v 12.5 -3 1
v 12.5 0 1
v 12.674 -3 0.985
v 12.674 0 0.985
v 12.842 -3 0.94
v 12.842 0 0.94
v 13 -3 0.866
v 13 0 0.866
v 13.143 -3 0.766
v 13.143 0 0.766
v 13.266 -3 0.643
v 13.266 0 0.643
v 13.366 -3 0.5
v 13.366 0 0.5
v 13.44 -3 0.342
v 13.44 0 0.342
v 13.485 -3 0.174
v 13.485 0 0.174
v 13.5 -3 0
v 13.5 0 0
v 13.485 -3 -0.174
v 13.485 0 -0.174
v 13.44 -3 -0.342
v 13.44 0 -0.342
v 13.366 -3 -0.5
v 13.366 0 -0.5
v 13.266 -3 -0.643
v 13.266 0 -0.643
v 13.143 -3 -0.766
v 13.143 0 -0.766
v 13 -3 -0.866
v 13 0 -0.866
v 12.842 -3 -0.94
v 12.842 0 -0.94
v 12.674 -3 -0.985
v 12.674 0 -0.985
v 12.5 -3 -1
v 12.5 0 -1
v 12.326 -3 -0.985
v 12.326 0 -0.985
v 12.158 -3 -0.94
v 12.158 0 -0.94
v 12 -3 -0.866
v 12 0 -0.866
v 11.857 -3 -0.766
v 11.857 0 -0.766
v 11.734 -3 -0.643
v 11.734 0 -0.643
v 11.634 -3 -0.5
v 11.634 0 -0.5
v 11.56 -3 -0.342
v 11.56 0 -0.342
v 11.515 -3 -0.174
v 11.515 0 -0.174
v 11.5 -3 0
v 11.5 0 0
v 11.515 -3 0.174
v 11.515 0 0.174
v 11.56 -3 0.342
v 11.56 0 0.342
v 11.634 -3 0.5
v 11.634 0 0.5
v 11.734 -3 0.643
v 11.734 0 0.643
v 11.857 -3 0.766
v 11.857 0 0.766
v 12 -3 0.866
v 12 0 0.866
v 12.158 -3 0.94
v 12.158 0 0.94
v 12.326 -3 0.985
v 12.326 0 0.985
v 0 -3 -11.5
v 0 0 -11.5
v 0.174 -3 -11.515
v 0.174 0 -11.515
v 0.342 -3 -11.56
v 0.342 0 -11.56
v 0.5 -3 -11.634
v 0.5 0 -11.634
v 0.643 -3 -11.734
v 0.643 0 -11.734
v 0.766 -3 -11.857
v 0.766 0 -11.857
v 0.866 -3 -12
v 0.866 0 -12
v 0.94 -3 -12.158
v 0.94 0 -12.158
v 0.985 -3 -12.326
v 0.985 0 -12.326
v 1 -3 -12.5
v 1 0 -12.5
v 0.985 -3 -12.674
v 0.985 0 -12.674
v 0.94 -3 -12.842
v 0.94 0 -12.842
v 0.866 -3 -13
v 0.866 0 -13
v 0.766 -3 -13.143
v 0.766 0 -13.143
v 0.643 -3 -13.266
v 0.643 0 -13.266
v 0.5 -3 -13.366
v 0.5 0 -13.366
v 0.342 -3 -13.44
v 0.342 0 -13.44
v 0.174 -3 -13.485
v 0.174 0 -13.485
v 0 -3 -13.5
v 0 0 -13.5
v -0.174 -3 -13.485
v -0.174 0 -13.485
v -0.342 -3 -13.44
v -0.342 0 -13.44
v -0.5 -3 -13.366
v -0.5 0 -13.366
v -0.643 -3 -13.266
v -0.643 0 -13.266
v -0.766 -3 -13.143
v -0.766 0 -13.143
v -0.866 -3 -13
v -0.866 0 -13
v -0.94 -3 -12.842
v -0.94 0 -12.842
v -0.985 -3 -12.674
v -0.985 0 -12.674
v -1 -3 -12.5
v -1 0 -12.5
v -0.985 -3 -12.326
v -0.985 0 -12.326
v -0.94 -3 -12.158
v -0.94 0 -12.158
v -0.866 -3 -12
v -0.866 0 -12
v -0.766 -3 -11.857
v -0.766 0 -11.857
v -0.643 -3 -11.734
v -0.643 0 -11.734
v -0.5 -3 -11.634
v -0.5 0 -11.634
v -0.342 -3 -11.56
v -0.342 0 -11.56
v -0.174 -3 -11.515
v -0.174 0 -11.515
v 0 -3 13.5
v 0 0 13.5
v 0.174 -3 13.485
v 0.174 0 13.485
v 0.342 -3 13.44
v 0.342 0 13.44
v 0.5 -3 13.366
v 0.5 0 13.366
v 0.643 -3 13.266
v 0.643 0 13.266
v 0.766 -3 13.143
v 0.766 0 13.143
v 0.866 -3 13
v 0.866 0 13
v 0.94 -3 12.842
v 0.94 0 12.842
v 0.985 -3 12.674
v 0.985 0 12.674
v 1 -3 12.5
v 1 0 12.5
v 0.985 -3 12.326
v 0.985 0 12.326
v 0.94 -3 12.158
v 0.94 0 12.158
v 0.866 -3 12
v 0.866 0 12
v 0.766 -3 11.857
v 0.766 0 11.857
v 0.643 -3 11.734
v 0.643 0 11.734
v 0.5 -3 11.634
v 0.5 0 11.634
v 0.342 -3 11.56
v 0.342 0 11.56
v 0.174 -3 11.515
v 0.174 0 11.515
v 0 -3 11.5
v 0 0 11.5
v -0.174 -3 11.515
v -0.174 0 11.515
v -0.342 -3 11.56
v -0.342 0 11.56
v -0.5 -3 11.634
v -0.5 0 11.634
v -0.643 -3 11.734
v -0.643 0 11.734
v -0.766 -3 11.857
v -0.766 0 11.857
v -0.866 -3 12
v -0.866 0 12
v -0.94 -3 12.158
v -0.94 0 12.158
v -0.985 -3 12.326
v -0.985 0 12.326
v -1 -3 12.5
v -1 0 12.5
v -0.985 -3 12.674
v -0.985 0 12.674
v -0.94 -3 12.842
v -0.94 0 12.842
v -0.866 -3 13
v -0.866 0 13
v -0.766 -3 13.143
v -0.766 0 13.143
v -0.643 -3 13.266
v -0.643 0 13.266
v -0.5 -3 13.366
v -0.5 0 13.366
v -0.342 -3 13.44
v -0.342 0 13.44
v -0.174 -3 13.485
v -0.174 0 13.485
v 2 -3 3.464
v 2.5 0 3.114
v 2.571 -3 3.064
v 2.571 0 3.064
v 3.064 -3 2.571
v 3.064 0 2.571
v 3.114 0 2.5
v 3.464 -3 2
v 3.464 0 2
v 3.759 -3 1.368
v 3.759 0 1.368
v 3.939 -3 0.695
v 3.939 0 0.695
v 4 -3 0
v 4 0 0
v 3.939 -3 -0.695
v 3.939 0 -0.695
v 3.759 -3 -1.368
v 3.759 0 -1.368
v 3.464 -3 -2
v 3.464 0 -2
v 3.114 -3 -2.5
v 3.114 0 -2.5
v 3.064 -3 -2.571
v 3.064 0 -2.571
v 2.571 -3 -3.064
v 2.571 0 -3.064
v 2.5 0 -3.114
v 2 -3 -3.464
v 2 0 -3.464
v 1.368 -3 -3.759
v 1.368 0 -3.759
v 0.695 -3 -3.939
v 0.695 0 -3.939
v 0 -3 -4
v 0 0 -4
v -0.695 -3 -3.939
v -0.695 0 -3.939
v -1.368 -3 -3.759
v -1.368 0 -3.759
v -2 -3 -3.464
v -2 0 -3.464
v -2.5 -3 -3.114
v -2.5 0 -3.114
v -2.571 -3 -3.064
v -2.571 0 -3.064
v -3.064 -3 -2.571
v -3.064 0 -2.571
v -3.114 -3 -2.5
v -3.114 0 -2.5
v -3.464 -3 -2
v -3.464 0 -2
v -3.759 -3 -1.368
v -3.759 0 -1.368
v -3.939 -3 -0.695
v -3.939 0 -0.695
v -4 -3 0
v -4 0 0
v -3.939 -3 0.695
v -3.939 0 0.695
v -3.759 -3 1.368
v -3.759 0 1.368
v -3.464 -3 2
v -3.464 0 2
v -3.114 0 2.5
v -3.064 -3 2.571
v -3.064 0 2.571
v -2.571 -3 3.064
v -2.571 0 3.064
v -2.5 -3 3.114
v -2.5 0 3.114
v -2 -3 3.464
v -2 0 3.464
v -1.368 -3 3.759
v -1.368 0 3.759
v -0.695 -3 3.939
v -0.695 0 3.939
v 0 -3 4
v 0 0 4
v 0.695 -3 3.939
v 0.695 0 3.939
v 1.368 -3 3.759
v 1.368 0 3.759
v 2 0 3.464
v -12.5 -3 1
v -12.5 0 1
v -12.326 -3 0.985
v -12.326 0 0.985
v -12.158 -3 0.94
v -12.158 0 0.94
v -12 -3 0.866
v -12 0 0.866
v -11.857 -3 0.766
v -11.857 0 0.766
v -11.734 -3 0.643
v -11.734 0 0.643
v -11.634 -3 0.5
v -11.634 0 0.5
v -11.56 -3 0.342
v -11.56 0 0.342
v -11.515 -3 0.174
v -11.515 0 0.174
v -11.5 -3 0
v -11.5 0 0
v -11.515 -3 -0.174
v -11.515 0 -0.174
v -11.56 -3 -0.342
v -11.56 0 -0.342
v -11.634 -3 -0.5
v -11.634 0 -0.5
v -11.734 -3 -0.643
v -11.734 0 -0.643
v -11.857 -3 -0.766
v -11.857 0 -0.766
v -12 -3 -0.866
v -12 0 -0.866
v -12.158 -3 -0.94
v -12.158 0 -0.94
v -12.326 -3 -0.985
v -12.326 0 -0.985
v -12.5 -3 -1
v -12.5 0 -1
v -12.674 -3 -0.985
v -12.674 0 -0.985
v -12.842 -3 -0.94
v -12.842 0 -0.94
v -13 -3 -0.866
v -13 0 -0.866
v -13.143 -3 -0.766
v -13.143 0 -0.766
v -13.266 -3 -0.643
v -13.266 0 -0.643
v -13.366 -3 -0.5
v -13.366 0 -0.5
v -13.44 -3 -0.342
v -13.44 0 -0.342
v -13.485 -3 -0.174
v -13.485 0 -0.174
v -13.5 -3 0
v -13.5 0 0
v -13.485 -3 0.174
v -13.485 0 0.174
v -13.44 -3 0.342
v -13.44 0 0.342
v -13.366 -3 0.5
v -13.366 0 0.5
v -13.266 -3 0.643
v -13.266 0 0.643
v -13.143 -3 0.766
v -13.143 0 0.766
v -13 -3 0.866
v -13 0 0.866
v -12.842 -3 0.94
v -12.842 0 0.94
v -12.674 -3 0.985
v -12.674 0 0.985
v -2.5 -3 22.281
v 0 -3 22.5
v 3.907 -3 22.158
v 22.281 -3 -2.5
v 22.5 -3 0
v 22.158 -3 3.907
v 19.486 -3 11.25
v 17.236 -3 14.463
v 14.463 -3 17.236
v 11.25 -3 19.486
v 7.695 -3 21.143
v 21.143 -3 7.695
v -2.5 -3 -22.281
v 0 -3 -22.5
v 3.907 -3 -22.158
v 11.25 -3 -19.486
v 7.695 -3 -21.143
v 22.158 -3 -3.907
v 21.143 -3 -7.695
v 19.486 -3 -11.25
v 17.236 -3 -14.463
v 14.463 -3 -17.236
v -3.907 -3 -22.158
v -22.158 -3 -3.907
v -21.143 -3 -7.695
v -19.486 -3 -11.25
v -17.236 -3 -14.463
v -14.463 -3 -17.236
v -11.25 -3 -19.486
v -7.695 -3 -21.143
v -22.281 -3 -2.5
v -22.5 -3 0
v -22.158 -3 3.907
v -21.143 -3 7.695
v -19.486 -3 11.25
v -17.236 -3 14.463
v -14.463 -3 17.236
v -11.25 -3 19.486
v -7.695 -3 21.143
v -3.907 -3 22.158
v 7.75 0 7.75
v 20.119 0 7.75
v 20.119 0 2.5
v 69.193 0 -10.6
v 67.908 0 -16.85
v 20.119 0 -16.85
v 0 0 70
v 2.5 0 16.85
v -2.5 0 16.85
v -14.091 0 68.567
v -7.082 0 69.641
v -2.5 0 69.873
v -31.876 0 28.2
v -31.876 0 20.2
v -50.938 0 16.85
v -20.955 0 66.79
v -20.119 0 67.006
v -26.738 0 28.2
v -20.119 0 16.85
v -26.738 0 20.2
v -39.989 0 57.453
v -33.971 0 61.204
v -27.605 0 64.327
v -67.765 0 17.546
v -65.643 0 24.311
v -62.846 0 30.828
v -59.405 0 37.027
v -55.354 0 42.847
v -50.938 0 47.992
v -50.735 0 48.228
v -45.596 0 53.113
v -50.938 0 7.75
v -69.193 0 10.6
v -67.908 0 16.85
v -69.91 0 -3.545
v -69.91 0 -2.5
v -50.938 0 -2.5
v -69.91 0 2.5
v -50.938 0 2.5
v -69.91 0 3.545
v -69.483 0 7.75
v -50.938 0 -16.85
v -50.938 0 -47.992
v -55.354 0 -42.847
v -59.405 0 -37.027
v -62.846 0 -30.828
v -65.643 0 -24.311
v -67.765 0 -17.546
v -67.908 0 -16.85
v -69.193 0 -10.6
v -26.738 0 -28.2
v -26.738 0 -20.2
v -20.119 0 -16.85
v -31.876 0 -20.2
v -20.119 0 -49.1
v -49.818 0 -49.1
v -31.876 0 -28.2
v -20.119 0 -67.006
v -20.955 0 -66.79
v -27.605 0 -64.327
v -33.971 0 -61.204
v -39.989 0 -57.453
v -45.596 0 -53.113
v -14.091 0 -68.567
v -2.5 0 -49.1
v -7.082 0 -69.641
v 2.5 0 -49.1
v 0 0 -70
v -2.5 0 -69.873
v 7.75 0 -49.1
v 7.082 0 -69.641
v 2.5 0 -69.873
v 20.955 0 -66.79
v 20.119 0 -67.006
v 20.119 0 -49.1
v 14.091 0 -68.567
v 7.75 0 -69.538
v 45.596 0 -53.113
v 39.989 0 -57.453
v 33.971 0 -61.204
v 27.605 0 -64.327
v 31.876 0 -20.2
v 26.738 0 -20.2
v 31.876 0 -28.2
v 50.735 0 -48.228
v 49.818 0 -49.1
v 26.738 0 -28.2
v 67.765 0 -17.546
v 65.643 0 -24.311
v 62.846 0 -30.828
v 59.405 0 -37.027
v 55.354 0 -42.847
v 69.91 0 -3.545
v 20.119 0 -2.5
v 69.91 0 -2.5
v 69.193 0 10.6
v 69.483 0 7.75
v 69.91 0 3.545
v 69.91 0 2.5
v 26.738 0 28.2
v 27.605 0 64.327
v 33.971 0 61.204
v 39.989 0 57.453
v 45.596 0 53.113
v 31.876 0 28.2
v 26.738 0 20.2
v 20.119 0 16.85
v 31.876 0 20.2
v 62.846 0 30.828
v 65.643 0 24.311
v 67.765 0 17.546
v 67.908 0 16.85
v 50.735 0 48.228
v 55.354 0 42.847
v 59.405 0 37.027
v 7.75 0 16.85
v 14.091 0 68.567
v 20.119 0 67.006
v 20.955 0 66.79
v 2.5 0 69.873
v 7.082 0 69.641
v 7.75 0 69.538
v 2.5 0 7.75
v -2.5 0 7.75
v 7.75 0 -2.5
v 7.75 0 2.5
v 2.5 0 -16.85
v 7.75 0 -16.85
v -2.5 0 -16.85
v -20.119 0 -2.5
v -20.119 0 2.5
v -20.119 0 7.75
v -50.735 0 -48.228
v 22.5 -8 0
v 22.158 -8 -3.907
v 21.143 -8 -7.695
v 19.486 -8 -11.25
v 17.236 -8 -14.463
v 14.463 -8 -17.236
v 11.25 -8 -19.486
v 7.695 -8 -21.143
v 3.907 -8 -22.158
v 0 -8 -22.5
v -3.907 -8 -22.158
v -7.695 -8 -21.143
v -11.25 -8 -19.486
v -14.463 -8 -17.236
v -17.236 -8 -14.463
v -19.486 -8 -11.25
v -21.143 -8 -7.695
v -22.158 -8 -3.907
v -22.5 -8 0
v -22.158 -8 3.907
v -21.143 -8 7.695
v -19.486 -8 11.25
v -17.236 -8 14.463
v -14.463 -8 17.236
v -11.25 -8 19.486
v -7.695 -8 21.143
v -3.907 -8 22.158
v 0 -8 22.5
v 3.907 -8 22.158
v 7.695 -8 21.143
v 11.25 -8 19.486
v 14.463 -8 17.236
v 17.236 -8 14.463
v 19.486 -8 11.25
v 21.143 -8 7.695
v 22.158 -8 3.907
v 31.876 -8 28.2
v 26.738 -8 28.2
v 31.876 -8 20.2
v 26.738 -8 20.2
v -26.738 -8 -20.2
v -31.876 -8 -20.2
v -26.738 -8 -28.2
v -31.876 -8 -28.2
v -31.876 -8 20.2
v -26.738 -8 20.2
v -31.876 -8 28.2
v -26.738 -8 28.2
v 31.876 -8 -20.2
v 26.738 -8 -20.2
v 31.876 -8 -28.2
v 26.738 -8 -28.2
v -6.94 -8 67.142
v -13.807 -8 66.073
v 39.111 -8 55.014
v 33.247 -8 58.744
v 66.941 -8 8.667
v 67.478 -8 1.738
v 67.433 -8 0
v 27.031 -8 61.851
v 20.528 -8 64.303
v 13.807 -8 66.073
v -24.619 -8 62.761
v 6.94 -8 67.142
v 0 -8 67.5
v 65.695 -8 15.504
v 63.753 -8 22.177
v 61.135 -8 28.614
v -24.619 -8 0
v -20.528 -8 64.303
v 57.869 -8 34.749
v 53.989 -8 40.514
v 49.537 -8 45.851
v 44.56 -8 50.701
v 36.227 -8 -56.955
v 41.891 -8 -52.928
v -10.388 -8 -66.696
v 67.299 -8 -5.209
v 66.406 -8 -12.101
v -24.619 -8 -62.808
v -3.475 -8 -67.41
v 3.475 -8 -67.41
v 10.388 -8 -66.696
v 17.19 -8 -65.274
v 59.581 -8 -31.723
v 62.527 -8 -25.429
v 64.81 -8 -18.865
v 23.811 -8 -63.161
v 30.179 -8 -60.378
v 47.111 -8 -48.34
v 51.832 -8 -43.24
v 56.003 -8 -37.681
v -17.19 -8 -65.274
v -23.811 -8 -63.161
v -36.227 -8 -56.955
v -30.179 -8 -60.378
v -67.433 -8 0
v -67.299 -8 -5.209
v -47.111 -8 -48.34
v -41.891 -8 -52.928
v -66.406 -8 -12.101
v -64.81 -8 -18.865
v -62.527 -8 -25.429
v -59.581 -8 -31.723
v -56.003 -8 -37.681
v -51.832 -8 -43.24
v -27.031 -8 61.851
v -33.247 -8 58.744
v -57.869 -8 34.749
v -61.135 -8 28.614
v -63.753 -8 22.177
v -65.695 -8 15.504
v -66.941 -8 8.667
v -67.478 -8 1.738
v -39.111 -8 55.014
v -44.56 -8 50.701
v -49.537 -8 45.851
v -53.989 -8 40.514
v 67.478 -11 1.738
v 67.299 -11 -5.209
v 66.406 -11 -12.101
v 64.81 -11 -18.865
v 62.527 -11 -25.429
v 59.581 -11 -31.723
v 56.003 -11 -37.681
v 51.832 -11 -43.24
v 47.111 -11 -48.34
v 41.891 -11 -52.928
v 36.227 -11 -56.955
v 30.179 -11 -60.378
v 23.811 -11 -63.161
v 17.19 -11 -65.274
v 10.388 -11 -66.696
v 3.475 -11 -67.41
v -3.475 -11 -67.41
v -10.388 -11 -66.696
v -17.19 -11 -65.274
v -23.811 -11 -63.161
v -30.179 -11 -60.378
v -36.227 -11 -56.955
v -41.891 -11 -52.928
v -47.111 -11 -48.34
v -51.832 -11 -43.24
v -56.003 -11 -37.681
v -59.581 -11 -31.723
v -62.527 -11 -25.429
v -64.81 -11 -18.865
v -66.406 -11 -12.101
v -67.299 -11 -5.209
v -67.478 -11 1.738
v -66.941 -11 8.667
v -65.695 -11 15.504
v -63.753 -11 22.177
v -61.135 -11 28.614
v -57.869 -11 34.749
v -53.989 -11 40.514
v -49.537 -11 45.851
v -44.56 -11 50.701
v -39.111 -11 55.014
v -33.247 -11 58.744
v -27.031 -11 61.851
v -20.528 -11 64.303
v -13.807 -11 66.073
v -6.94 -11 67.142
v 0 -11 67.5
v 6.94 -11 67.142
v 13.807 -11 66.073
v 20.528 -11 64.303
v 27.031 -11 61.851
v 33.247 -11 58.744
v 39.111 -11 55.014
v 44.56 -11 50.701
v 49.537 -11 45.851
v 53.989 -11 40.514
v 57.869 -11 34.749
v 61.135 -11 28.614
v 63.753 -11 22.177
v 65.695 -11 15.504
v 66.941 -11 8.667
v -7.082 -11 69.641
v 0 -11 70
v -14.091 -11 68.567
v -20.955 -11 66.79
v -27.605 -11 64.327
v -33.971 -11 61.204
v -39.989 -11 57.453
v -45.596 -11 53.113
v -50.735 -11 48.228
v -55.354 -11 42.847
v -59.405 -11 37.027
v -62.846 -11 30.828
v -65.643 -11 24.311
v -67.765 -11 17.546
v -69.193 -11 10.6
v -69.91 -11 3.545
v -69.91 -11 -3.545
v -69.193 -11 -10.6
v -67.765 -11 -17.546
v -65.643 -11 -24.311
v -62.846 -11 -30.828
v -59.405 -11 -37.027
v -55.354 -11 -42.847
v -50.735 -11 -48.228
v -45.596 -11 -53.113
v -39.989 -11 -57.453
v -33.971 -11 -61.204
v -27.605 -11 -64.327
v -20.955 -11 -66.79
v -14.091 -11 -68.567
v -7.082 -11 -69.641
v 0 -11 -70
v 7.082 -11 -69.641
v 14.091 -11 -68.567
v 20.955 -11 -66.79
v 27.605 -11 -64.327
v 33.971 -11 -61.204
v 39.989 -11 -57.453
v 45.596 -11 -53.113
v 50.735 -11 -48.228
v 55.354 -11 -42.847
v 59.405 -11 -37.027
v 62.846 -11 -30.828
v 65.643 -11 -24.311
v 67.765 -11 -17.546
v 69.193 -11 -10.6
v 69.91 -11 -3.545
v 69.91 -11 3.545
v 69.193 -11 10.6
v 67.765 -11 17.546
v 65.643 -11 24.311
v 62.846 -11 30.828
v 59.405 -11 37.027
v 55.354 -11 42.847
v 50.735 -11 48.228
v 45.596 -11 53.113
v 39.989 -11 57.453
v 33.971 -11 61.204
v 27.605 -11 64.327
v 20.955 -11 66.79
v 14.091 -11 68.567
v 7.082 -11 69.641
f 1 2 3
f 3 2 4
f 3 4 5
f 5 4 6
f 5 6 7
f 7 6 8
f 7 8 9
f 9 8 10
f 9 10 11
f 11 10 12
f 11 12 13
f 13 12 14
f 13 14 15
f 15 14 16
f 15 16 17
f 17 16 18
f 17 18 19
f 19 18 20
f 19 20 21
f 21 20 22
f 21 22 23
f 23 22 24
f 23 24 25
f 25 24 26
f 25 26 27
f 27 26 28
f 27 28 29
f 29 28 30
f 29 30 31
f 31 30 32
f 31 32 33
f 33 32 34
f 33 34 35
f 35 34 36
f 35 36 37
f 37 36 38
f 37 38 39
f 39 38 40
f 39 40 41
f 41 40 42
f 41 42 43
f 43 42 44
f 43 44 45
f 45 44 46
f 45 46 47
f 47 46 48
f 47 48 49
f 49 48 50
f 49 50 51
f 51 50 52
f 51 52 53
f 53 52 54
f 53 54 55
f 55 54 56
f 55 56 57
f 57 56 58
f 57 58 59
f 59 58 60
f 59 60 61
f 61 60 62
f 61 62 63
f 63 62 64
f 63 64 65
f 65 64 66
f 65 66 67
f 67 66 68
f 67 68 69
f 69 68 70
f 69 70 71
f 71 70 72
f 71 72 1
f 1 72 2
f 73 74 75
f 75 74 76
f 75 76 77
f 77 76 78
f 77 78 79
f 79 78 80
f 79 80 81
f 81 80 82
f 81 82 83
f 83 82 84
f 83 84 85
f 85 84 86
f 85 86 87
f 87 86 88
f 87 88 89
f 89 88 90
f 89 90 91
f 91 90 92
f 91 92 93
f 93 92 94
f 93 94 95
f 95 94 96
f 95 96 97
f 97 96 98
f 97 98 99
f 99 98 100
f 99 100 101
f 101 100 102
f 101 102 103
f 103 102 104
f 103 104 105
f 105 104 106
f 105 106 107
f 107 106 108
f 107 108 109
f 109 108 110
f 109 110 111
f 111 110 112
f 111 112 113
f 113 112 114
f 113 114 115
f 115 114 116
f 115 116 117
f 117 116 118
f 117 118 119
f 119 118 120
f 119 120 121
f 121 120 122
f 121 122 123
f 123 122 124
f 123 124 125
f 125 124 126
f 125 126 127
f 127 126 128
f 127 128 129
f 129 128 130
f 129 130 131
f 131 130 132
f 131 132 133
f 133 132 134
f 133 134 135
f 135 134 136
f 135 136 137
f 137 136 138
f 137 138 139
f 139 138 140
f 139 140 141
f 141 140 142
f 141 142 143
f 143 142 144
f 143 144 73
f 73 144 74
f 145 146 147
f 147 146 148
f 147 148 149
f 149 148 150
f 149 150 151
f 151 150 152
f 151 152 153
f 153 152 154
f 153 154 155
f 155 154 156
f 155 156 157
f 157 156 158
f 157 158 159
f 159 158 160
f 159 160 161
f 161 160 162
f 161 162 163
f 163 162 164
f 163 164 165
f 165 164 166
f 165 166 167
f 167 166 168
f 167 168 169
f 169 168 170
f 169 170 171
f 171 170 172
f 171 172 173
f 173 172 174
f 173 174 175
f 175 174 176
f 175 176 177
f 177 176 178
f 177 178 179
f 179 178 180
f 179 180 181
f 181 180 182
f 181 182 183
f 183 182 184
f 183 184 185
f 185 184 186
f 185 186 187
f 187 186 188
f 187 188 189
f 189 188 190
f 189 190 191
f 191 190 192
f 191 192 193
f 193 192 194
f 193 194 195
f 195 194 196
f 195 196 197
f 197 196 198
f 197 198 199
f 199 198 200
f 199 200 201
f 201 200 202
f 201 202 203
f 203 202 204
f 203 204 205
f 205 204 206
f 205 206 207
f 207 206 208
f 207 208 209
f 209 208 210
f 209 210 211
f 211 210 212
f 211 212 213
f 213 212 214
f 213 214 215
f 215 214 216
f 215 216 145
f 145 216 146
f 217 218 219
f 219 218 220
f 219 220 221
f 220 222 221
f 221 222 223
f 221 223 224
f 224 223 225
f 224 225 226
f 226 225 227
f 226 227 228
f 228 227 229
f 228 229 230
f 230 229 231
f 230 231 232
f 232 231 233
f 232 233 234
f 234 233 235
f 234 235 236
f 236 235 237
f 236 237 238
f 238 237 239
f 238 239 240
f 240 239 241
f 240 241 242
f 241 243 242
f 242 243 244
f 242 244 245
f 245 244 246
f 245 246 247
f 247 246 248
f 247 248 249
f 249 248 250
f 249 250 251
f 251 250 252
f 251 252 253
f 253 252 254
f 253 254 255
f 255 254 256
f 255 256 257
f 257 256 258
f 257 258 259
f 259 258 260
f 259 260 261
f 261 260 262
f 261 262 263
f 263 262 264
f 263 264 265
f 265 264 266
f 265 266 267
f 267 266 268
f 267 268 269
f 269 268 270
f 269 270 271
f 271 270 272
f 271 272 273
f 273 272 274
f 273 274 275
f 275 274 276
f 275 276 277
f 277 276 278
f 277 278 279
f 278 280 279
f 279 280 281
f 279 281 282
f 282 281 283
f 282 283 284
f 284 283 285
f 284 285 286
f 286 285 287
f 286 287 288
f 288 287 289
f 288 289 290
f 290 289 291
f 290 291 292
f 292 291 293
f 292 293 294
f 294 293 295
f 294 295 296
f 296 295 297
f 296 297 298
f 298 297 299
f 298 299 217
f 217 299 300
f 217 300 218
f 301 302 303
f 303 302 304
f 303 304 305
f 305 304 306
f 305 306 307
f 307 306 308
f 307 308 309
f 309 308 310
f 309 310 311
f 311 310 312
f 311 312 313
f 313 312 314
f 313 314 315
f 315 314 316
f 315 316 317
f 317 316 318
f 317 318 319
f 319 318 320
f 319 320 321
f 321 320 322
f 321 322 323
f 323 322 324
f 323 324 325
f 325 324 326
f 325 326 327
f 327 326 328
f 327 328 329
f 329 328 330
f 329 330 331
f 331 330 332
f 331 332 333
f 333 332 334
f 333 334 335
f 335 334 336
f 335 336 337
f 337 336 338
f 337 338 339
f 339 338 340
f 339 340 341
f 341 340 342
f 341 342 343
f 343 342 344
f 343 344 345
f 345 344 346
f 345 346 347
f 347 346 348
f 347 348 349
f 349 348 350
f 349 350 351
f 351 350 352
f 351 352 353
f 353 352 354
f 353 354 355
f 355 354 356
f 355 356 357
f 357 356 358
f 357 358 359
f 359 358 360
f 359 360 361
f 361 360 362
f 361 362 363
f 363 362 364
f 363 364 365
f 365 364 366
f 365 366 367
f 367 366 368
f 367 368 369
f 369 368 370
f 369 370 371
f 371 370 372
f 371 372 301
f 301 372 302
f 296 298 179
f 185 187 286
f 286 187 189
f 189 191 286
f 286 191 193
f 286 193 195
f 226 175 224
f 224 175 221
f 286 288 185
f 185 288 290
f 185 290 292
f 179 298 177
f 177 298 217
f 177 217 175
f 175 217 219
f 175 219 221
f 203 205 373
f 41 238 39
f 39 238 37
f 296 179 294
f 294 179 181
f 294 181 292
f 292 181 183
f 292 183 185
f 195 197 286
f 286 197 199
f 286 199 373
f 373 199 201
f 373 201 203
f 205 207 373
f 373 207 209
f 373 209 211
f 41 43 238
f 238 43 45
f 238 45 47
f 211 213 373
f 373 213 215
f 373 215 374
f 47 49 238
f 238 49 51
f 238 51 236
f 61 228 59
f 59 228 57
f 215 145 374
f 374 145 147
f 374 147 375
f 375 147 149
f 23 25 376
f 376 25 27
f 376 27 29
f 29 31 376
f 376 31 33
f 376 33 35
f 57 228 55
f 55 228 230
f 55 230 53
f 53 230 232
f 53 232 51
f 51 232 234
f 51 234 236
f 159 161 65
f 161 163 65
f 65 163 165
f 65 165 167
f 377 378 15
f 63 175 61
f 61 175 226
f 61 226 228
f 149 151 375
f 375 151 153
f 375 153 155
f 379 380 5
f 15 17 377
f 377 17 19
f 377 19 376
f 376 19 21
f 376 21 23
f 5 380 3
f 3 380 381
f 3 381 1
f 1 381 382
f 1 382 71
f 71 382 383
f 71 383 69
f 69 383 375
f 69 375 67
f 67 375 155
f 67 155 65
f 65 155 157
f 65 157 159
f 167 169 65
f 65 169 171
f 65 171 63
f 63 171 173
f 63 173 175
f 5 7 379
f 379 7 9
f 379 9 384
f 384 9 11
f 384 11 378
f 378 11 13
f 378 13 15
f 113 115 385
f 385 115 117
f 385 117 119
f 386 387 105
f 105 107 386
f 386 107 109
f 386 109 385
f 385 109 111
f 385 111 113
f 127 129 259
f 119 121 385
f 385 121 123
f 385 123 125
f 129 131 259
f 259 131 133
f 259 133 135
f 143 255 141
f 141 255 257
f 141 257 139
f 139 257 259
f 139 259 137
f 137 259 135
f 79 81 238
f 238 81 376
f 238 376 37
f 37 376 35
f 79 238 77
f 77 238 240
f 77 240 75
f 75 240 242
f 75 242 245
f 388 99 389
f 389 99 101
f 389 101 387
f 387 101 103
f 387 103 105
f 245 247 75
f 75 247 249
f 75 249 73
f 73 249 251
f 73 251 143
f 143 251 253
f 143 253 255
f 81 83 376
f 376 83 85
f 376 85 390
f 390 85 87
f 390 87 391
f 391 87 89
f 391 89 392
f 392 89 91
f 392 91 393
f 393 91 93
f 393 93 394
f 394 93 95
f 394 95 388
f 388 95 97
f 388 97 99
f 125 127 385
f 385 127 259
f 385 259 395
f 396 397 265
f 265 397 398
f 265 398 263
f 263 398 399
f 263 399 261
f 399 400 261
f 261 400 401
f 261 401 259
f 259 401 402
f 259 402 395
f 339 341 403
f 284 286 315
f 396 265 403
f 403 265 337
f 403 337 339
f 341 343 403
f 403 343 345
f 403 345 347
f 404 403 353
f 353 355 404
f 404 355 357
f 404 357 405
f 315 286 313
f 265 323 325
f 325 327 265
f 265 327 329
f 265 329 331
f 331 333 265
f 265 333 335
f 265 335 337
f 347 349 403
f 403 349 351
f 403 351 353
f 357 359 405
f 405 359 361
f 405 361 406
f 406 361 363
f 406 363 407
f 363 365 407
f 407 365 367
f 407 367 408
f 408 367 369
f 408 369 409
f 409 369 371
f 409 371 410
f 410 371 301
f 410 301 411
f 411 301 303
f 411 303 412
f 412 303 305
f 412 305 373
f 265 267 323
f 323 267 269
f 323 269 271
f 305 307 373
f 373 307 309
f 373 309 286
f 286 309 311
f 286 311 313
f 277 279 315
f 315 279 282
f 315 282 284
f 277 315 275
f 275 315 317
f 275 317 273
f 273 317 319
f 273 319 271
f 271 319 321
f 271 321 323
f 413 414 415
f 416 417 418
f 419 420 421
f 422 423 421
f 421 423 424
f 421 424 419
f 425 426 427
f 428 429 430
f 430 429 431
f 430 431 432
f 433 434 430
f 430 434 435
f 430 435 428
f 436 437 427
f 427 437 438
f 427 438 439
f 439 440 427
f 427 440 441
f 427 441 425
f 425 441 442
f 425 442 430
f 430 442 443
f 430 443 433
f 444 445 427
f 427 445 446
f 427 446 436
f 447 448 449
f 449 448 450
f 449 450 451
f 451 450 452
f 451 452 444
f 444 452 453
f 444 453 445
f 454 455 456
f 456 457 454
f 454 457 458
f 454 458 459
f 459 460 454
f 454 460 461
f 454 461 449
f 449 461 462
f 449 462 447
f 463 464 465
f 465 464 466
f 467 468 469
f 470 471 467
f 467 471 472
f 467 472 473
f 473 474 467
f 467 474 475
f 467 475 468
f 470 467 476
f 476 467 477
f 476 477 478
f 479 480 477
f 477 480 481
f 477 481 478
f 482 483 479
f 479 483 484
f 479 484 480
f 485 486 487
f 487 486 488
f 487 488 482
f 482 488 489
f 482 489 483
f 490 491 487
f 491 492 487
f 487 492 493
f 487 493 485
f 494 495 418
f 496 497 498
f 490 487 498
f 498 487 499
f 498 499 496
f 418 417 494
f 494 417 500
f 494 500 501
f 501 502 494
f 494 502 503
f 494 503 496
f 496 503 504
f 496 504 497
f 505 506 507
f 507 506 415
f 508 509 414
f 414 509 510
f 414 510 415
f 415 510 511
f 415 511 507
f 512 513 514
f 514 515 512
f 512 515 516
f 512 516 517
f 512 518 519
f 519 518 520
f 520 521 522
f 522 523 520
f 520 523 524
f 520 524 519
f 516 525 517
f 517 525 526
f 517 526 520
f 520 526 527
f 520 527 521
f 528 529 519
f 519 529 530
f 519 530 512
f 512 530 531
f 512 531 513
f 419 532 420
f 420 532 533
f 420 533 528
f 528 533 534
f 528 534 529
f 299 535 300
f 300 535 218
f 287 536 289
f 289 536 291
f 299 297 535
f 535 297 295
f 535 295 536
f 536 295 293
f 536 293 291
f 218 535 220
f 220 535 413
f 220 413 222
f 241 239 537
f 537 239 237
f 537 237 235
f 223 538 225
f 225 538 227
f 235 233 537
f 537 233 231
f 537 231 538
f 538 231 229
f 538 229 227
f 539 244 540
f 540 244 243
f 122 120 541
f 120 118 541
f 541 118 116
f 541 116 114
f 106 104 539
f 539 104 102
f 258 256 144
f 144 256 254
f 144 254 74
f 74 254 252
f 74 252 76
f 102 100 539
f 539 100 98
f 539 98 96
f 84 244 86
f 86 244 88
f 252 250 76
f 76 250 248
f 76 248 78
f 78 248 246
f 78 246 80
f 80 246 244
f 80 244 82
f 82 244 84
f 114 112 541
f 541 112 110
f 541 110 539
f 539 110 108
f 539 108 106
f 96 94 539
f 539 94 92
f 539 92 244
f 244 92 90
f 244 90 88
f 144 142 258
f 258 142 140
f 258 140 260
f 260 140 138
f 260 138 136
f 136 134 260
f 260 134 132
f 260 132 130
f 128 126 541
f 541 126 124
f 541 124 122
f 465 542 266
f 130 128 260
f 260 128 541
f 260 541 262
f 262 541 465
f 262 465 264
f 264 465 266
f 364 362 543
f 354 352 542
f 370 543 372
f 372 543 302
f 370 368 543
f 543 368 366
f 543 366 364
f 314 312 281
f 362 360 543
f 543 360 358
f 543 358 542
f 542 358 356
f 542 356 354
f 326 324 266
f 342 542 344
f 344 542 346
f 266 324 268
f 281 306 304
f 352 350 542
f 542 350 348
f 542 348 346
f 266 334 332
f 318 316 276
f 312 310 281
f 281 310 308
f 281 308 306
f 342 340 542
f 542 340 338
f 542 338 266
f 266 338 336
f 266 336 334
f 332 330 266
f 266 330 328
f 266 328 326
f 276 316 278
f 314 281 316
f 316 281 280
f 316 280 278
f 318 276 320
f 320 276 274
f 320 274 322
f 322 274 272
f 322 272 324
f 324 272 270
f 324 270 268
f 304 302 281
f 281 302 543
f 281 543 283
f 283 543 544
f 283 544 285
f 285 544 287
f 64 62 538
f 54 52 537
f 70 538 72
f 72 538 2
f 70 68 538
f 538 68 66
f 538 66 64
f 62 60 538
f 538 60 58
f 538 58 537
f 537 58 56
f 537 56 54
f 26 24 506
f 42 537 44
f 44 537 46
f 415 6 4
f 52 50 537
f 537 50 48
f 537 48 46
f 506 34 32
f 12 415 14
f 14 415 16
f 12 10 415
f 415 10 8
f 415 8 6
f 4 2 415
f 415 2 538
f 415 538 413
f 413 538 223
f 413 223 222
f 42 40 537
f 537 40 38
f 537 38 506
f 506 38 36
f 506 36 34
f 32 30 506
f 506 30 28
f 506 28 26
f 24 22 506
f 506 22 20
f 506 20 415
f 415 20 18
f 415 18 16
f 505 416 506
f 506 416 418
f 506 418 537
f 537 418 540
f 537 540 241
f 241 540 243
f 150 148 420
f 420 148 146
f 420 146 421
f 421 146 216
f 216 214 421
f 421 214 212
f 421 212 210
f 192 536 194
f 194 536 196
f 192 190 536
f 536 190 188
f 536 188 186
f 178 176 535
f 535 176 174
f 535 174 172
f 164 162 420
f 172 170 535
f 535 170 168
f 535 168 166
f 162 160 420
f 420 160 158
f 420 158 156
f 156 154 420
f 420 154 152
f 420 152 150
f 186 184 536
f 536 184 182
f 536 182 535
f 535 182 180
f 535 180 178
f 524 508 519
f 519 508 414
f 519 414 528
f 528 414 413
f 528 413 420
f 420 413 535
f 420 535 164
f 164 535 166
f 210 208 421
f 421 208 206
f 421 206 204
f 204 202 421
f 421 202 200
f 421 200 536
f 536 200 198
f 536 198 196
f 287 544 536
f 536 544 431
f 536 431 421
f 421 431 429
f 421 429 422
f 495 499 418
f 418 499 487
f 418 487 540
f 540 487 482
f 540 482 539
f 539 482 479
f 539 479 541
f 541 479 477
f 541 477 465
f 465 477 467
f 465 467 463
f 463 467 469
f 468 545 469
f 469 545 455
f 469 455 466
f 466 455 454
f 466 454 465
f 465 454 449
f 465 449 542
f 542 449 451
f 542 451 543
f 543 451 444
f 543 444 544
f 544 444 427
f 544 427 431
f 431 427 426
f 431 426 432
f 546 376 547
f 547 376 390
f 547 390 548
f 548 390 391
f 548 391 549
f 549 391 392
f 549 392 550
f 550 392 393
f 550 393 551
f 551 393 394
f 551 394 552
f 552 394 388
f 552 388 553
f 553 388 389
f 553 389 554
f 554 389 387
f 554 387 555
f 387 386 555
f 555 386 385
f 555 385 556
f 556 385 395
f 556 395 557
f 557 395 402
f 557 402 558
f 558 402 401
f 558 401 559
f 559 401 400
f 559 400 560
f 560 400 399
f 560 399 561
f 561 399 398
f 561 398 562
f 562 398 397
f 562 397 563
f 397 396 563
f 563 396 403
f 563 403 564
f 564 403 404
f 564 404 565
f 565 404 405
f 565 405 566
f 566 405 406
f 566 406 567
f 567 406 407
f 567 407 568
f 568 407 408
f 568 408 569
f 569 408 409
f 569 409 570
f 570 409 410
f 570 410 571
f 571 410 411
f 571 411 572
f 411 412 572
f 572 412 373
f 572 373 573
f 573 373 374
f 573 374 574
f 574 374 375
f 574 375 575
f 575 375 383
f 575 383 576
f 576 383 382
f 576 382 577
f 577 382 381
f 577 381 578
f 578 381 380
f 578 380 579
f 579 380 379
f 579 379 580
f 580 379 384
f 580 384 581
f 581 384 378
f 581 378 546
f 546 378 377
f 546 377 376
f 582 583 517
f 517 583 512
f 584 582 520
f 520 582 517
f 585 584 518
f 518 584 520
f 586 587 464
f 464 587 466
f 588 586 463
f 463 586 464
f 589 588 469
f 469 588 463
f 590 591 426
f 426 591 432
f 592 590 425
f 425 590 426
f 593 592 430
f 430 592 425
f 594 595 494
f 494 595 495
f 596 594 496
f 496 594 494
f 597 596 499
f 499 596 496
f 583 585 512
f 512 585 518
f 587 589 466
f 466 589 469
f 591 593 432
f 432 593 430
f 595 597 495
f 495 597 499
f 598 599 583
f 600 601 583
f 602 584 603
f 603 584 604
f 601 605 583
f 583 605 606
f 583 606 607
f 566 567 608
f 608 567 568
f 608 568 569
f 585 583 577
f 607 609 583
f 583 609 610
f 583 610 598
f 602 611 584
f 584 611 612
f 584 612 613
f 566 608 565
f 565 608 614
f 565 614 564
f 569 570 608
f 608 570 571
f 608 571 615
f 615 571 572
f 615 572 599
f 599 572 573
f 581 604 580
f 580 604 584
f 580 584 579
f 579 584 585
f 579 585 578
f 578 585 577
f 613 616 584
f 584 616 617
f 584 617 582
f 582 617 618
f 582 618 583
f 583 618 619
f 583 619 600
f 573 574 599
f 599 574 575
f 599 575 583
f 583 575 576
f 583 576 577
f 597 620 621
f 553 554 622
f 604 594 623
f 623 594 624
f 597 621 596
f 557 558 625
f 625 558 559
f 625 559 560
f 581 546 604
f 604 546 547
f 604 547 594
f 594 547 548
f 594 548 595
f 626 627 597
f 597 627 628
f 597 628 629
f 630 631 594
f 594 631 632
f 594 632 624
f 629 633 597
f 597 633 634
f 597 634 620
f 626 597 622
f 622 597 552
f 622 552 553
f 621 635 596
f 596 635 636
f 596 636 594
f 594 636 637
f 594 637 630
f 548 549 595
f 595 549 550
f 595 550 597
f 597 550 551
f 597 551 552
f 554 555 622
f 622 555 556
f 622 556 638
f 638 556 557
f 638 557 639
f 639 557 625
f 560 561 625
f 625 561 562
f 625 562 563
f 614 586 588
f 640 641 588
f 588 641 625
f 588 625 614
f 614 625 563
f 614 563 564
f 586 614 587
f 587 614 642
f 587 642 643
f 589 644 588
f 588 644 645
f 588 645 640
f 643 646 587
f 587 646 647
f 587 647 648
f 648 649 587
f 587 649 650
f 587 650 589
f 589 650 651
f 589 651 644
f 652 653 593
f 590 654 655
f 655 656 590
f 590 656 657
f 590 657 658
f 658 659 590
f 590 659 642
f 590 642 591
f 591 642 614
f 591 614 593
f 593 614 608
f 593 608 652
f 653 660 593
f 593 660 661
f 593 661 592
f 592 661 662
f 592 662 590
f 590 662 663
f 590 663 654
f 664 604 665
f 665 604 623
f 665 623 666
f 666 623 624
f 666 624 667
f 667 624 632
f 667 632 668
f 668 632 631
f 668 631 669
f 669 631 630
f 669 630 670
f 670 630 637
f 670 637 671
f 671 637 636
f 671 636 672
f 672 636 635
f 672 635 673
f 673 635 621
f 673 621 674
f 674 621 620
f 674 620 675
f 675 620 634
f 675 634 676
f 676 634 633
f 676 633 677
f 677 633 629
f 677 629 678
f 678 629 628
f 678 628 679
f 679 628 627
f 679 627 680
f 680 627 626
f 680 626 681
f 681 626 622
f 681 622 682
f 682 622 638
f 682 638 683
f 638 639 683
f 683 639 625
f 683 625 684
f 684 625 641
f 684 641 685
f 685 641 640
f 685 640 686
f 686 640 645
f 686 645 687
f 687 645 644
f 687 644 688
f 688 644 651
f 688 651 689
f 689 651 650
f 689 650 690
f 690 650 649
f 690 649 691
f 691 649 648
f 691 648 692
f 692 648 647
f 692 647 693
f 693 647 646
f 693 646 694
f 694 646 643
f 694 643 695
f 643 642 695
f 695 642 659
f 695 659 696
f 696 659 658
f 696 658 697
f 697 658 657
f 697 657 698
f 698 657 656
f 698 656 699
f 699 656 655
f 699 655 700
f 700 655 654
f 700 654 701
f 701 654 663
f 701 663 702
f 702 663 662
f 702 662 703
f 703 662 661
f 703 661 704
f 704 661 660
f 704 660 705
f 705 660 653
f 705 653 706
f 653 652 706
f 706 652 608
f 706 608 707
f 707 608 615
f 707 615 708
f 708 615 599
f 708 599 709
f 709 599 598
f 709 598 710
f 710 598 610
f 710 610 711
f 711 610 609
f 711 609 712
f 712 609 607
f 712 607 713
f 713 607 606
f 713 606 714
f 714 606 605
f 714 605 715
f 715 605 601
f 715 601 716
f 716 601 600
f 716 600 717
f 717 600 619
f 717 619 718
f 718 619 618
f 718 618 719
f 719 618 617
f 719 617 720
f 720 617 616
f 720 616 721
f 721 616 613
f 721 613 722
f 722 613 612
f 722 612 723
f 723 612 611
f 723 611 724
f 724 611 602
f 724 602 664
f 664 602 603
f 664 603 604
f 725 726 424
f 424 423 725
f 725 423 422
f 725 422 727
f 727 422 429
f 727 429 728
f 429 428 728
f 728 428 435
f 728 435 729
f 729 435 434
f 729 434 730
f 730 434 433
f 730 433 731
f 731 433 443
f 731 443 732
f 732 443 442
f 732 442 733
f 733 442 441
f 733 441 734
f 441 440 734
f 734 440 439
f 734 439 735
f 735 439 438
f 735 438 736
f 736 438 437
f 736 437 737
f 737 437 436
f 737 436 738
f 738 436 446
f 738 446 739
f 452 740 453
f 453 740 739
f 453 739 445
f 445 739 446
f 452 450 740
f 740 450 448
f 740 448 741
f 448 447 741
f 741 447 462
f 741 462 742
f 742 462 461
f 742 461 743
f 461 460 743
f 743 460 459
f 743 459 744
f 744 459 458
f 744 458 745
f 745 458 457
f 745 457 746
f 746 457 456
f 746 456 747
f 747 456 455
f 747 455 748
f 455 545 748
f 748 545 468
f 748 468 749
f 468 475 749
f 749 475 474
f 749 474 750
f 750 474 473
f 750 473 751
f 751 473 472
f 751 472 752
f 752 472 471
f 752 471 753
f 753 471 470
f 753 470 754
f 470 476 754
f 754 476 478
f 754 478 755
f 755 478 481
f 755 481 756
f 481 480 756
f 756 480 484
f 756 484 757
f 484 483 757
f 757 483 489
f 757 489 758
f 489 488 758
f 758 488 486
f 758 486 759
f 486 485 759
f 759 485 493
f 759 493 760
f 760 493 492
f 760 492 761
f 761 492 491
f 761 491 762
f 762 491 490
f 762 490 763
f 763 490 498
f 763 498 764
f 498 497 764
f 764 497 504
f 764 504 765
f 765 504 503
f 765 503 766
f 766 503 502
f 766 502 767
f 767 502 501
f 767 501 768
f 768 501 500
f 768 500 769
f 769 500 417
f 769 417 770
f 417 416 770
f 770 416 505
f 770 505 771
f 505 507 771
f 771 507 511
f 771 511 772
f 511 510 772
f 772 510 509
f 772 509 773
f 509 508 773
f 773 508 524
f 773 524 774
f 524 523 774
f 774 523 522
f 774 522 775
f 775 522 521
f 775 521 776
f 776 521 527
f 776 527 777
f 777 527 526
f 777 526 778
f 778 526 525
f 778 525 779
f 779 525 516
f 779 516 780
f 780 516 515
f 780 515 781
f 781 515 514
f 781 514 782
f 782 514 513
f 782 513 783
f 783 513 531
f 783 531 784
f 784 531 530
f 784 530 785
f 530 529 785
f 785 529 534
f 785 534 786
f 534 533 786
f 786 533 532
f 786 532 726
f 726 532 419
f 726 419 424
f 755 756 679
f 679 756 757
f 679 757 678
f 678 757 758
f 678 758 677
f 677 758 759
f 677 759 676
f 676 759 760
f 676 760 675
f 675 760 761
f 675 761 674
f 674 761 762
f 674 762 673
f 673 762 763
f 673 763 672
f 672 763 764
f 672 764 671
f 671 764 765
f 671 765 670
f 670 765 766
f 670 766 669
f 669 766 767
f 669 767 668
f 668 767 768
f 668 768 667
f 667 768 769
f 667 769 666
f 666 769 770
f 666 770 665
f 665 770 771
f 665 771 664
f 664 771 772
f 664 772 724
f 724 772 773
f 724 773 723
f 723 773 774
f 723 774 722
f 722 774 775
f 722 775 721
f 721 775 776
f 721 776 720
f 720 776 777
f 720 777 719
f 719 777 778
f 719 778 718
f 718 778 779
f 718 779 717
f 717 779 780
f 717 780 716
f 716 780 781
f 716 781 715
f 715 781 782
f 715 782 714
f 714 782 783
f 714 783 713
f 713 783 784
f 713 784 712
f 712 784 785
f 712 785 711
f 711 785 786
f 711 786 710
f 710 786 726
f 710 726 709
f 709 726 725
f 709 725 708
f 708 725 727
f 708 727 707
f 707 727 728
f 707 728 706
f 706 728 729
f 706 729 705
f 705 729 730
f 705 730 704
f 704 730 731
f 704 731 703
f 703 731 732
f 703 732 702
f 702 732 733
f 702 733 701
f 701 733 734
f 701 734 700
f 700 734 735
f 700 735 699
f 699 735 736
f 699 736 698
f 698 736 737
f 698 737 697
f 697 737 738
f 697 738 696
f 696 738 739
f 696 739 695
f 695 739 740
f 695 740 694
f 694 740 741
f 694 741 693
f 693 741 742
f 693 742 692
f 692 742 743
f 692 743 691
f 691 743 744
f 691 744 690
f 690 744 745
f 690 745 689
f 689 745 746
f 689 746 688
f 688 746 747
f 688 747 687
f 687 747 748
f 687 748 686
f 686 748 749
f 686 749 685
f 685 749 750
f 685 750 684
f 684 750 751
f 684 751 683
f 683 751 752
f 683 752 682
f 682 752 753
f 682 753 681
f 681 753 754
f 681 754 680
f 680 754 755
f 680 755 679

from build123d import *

# Parameters (mm, degrees)
SKETCH1_R            = 22.5
SKETCH1_R_2          = 1
SKETCH1_R_3          = 4
BOSS_EXTRUDE7_DEPTH  = 3
SKETCH1_15_R         = 67.5
SKETCH1_15_W         = 5.138307475
SKETCH1_15_H         = 8
SKETCH1_15_R_2       = 22.5
BOSS_EXTRUDE8_DEPTH  = 8
SKETCH1_20_R         = 70
SKETCH1_20_R_2       = 67.5
BOSS_EXTRUDE10_DEPTH = 11


with BuildPart() as part:
    # Sketch1 → Boss-Extrude7 (new body)
    with BuildSketch(Plane(origin=(0, 0, 0), x_dir=(1, 0, 0), z_dir=(0, 1, 0))):
        Circle(SKETCH1_R)
        with Locations((0, -12.5)):
            Circle(SKETCH1_R_2, mode=Mode.SUBTRACT)
        with Locations((-12.5, 0)):
            Circle(SKETCH1_R_2, mode=Mode.SUBTRACT)
        Circle(SKETCH1_R_3, mode=Mode.SUBTRACT)
        with Locations((12.5, 0)):
            Circle(SKETCH1_R_2, mode=Mode.SUBTRACT)
        with Locations((0, 12.5)):
            Circle(SKETCH1_R_2, mode=Mode.SUBTRACT)
    extrude(amount=-BOSS_EXTRUDE7_DEPTH)

    # Sketch1<15> → Boss-Extrude8 (add)
    with BuildSketch(Plane(origin=(0, 0, 0), x_dir=(1, 0, 0), z_dir=(0, 1, 0))):
        Circle(SKETCH1_15_R)
        with Locations((-29.307217935, -24.2)):
            Rectangle(SKETCH1_15_W, SKETCH1_15_H, mode=Mode.SUBTRACT)
        with Locations((29.307217935, -24.2)):
            Rectangle(SKETCH1_15_W, SKETCH1_15_H, mode=Mode.SUBTRACT)
        with Locations((-29.307217935, 24.2)):
            Rectangle(SKETCH1_15_W, SKETCH1_15_H, mode=Mode.SUBTRACT)
        Circle(SKETCH1_15_R_2, mode=Mode.SUBTRACT)
        with Locations((29.307217935, 24.2)):
            Rectangle(SKETCH1_15_W, SKETCH1_15_H, mode=Mode.SUBTRACT)
    extrude(amount=-BOSS_EXTRUDE8_DEPTH)

    # Sketch1<20> → Boss-Extrude10 (add)
    with BuildSketch(Plane(origin=(0, 0, 0), x_dir=(1, 0, 0), z_dir=(0, 1, 0))):
        Circle(SKETCH1_20_R)
        Circle(SKETCH1_20_R_2, mode=Mode.SUBTRACT)
    extrude(amount=-BOSS_EXTRUDE10_DEPTH)


solid = part.part
